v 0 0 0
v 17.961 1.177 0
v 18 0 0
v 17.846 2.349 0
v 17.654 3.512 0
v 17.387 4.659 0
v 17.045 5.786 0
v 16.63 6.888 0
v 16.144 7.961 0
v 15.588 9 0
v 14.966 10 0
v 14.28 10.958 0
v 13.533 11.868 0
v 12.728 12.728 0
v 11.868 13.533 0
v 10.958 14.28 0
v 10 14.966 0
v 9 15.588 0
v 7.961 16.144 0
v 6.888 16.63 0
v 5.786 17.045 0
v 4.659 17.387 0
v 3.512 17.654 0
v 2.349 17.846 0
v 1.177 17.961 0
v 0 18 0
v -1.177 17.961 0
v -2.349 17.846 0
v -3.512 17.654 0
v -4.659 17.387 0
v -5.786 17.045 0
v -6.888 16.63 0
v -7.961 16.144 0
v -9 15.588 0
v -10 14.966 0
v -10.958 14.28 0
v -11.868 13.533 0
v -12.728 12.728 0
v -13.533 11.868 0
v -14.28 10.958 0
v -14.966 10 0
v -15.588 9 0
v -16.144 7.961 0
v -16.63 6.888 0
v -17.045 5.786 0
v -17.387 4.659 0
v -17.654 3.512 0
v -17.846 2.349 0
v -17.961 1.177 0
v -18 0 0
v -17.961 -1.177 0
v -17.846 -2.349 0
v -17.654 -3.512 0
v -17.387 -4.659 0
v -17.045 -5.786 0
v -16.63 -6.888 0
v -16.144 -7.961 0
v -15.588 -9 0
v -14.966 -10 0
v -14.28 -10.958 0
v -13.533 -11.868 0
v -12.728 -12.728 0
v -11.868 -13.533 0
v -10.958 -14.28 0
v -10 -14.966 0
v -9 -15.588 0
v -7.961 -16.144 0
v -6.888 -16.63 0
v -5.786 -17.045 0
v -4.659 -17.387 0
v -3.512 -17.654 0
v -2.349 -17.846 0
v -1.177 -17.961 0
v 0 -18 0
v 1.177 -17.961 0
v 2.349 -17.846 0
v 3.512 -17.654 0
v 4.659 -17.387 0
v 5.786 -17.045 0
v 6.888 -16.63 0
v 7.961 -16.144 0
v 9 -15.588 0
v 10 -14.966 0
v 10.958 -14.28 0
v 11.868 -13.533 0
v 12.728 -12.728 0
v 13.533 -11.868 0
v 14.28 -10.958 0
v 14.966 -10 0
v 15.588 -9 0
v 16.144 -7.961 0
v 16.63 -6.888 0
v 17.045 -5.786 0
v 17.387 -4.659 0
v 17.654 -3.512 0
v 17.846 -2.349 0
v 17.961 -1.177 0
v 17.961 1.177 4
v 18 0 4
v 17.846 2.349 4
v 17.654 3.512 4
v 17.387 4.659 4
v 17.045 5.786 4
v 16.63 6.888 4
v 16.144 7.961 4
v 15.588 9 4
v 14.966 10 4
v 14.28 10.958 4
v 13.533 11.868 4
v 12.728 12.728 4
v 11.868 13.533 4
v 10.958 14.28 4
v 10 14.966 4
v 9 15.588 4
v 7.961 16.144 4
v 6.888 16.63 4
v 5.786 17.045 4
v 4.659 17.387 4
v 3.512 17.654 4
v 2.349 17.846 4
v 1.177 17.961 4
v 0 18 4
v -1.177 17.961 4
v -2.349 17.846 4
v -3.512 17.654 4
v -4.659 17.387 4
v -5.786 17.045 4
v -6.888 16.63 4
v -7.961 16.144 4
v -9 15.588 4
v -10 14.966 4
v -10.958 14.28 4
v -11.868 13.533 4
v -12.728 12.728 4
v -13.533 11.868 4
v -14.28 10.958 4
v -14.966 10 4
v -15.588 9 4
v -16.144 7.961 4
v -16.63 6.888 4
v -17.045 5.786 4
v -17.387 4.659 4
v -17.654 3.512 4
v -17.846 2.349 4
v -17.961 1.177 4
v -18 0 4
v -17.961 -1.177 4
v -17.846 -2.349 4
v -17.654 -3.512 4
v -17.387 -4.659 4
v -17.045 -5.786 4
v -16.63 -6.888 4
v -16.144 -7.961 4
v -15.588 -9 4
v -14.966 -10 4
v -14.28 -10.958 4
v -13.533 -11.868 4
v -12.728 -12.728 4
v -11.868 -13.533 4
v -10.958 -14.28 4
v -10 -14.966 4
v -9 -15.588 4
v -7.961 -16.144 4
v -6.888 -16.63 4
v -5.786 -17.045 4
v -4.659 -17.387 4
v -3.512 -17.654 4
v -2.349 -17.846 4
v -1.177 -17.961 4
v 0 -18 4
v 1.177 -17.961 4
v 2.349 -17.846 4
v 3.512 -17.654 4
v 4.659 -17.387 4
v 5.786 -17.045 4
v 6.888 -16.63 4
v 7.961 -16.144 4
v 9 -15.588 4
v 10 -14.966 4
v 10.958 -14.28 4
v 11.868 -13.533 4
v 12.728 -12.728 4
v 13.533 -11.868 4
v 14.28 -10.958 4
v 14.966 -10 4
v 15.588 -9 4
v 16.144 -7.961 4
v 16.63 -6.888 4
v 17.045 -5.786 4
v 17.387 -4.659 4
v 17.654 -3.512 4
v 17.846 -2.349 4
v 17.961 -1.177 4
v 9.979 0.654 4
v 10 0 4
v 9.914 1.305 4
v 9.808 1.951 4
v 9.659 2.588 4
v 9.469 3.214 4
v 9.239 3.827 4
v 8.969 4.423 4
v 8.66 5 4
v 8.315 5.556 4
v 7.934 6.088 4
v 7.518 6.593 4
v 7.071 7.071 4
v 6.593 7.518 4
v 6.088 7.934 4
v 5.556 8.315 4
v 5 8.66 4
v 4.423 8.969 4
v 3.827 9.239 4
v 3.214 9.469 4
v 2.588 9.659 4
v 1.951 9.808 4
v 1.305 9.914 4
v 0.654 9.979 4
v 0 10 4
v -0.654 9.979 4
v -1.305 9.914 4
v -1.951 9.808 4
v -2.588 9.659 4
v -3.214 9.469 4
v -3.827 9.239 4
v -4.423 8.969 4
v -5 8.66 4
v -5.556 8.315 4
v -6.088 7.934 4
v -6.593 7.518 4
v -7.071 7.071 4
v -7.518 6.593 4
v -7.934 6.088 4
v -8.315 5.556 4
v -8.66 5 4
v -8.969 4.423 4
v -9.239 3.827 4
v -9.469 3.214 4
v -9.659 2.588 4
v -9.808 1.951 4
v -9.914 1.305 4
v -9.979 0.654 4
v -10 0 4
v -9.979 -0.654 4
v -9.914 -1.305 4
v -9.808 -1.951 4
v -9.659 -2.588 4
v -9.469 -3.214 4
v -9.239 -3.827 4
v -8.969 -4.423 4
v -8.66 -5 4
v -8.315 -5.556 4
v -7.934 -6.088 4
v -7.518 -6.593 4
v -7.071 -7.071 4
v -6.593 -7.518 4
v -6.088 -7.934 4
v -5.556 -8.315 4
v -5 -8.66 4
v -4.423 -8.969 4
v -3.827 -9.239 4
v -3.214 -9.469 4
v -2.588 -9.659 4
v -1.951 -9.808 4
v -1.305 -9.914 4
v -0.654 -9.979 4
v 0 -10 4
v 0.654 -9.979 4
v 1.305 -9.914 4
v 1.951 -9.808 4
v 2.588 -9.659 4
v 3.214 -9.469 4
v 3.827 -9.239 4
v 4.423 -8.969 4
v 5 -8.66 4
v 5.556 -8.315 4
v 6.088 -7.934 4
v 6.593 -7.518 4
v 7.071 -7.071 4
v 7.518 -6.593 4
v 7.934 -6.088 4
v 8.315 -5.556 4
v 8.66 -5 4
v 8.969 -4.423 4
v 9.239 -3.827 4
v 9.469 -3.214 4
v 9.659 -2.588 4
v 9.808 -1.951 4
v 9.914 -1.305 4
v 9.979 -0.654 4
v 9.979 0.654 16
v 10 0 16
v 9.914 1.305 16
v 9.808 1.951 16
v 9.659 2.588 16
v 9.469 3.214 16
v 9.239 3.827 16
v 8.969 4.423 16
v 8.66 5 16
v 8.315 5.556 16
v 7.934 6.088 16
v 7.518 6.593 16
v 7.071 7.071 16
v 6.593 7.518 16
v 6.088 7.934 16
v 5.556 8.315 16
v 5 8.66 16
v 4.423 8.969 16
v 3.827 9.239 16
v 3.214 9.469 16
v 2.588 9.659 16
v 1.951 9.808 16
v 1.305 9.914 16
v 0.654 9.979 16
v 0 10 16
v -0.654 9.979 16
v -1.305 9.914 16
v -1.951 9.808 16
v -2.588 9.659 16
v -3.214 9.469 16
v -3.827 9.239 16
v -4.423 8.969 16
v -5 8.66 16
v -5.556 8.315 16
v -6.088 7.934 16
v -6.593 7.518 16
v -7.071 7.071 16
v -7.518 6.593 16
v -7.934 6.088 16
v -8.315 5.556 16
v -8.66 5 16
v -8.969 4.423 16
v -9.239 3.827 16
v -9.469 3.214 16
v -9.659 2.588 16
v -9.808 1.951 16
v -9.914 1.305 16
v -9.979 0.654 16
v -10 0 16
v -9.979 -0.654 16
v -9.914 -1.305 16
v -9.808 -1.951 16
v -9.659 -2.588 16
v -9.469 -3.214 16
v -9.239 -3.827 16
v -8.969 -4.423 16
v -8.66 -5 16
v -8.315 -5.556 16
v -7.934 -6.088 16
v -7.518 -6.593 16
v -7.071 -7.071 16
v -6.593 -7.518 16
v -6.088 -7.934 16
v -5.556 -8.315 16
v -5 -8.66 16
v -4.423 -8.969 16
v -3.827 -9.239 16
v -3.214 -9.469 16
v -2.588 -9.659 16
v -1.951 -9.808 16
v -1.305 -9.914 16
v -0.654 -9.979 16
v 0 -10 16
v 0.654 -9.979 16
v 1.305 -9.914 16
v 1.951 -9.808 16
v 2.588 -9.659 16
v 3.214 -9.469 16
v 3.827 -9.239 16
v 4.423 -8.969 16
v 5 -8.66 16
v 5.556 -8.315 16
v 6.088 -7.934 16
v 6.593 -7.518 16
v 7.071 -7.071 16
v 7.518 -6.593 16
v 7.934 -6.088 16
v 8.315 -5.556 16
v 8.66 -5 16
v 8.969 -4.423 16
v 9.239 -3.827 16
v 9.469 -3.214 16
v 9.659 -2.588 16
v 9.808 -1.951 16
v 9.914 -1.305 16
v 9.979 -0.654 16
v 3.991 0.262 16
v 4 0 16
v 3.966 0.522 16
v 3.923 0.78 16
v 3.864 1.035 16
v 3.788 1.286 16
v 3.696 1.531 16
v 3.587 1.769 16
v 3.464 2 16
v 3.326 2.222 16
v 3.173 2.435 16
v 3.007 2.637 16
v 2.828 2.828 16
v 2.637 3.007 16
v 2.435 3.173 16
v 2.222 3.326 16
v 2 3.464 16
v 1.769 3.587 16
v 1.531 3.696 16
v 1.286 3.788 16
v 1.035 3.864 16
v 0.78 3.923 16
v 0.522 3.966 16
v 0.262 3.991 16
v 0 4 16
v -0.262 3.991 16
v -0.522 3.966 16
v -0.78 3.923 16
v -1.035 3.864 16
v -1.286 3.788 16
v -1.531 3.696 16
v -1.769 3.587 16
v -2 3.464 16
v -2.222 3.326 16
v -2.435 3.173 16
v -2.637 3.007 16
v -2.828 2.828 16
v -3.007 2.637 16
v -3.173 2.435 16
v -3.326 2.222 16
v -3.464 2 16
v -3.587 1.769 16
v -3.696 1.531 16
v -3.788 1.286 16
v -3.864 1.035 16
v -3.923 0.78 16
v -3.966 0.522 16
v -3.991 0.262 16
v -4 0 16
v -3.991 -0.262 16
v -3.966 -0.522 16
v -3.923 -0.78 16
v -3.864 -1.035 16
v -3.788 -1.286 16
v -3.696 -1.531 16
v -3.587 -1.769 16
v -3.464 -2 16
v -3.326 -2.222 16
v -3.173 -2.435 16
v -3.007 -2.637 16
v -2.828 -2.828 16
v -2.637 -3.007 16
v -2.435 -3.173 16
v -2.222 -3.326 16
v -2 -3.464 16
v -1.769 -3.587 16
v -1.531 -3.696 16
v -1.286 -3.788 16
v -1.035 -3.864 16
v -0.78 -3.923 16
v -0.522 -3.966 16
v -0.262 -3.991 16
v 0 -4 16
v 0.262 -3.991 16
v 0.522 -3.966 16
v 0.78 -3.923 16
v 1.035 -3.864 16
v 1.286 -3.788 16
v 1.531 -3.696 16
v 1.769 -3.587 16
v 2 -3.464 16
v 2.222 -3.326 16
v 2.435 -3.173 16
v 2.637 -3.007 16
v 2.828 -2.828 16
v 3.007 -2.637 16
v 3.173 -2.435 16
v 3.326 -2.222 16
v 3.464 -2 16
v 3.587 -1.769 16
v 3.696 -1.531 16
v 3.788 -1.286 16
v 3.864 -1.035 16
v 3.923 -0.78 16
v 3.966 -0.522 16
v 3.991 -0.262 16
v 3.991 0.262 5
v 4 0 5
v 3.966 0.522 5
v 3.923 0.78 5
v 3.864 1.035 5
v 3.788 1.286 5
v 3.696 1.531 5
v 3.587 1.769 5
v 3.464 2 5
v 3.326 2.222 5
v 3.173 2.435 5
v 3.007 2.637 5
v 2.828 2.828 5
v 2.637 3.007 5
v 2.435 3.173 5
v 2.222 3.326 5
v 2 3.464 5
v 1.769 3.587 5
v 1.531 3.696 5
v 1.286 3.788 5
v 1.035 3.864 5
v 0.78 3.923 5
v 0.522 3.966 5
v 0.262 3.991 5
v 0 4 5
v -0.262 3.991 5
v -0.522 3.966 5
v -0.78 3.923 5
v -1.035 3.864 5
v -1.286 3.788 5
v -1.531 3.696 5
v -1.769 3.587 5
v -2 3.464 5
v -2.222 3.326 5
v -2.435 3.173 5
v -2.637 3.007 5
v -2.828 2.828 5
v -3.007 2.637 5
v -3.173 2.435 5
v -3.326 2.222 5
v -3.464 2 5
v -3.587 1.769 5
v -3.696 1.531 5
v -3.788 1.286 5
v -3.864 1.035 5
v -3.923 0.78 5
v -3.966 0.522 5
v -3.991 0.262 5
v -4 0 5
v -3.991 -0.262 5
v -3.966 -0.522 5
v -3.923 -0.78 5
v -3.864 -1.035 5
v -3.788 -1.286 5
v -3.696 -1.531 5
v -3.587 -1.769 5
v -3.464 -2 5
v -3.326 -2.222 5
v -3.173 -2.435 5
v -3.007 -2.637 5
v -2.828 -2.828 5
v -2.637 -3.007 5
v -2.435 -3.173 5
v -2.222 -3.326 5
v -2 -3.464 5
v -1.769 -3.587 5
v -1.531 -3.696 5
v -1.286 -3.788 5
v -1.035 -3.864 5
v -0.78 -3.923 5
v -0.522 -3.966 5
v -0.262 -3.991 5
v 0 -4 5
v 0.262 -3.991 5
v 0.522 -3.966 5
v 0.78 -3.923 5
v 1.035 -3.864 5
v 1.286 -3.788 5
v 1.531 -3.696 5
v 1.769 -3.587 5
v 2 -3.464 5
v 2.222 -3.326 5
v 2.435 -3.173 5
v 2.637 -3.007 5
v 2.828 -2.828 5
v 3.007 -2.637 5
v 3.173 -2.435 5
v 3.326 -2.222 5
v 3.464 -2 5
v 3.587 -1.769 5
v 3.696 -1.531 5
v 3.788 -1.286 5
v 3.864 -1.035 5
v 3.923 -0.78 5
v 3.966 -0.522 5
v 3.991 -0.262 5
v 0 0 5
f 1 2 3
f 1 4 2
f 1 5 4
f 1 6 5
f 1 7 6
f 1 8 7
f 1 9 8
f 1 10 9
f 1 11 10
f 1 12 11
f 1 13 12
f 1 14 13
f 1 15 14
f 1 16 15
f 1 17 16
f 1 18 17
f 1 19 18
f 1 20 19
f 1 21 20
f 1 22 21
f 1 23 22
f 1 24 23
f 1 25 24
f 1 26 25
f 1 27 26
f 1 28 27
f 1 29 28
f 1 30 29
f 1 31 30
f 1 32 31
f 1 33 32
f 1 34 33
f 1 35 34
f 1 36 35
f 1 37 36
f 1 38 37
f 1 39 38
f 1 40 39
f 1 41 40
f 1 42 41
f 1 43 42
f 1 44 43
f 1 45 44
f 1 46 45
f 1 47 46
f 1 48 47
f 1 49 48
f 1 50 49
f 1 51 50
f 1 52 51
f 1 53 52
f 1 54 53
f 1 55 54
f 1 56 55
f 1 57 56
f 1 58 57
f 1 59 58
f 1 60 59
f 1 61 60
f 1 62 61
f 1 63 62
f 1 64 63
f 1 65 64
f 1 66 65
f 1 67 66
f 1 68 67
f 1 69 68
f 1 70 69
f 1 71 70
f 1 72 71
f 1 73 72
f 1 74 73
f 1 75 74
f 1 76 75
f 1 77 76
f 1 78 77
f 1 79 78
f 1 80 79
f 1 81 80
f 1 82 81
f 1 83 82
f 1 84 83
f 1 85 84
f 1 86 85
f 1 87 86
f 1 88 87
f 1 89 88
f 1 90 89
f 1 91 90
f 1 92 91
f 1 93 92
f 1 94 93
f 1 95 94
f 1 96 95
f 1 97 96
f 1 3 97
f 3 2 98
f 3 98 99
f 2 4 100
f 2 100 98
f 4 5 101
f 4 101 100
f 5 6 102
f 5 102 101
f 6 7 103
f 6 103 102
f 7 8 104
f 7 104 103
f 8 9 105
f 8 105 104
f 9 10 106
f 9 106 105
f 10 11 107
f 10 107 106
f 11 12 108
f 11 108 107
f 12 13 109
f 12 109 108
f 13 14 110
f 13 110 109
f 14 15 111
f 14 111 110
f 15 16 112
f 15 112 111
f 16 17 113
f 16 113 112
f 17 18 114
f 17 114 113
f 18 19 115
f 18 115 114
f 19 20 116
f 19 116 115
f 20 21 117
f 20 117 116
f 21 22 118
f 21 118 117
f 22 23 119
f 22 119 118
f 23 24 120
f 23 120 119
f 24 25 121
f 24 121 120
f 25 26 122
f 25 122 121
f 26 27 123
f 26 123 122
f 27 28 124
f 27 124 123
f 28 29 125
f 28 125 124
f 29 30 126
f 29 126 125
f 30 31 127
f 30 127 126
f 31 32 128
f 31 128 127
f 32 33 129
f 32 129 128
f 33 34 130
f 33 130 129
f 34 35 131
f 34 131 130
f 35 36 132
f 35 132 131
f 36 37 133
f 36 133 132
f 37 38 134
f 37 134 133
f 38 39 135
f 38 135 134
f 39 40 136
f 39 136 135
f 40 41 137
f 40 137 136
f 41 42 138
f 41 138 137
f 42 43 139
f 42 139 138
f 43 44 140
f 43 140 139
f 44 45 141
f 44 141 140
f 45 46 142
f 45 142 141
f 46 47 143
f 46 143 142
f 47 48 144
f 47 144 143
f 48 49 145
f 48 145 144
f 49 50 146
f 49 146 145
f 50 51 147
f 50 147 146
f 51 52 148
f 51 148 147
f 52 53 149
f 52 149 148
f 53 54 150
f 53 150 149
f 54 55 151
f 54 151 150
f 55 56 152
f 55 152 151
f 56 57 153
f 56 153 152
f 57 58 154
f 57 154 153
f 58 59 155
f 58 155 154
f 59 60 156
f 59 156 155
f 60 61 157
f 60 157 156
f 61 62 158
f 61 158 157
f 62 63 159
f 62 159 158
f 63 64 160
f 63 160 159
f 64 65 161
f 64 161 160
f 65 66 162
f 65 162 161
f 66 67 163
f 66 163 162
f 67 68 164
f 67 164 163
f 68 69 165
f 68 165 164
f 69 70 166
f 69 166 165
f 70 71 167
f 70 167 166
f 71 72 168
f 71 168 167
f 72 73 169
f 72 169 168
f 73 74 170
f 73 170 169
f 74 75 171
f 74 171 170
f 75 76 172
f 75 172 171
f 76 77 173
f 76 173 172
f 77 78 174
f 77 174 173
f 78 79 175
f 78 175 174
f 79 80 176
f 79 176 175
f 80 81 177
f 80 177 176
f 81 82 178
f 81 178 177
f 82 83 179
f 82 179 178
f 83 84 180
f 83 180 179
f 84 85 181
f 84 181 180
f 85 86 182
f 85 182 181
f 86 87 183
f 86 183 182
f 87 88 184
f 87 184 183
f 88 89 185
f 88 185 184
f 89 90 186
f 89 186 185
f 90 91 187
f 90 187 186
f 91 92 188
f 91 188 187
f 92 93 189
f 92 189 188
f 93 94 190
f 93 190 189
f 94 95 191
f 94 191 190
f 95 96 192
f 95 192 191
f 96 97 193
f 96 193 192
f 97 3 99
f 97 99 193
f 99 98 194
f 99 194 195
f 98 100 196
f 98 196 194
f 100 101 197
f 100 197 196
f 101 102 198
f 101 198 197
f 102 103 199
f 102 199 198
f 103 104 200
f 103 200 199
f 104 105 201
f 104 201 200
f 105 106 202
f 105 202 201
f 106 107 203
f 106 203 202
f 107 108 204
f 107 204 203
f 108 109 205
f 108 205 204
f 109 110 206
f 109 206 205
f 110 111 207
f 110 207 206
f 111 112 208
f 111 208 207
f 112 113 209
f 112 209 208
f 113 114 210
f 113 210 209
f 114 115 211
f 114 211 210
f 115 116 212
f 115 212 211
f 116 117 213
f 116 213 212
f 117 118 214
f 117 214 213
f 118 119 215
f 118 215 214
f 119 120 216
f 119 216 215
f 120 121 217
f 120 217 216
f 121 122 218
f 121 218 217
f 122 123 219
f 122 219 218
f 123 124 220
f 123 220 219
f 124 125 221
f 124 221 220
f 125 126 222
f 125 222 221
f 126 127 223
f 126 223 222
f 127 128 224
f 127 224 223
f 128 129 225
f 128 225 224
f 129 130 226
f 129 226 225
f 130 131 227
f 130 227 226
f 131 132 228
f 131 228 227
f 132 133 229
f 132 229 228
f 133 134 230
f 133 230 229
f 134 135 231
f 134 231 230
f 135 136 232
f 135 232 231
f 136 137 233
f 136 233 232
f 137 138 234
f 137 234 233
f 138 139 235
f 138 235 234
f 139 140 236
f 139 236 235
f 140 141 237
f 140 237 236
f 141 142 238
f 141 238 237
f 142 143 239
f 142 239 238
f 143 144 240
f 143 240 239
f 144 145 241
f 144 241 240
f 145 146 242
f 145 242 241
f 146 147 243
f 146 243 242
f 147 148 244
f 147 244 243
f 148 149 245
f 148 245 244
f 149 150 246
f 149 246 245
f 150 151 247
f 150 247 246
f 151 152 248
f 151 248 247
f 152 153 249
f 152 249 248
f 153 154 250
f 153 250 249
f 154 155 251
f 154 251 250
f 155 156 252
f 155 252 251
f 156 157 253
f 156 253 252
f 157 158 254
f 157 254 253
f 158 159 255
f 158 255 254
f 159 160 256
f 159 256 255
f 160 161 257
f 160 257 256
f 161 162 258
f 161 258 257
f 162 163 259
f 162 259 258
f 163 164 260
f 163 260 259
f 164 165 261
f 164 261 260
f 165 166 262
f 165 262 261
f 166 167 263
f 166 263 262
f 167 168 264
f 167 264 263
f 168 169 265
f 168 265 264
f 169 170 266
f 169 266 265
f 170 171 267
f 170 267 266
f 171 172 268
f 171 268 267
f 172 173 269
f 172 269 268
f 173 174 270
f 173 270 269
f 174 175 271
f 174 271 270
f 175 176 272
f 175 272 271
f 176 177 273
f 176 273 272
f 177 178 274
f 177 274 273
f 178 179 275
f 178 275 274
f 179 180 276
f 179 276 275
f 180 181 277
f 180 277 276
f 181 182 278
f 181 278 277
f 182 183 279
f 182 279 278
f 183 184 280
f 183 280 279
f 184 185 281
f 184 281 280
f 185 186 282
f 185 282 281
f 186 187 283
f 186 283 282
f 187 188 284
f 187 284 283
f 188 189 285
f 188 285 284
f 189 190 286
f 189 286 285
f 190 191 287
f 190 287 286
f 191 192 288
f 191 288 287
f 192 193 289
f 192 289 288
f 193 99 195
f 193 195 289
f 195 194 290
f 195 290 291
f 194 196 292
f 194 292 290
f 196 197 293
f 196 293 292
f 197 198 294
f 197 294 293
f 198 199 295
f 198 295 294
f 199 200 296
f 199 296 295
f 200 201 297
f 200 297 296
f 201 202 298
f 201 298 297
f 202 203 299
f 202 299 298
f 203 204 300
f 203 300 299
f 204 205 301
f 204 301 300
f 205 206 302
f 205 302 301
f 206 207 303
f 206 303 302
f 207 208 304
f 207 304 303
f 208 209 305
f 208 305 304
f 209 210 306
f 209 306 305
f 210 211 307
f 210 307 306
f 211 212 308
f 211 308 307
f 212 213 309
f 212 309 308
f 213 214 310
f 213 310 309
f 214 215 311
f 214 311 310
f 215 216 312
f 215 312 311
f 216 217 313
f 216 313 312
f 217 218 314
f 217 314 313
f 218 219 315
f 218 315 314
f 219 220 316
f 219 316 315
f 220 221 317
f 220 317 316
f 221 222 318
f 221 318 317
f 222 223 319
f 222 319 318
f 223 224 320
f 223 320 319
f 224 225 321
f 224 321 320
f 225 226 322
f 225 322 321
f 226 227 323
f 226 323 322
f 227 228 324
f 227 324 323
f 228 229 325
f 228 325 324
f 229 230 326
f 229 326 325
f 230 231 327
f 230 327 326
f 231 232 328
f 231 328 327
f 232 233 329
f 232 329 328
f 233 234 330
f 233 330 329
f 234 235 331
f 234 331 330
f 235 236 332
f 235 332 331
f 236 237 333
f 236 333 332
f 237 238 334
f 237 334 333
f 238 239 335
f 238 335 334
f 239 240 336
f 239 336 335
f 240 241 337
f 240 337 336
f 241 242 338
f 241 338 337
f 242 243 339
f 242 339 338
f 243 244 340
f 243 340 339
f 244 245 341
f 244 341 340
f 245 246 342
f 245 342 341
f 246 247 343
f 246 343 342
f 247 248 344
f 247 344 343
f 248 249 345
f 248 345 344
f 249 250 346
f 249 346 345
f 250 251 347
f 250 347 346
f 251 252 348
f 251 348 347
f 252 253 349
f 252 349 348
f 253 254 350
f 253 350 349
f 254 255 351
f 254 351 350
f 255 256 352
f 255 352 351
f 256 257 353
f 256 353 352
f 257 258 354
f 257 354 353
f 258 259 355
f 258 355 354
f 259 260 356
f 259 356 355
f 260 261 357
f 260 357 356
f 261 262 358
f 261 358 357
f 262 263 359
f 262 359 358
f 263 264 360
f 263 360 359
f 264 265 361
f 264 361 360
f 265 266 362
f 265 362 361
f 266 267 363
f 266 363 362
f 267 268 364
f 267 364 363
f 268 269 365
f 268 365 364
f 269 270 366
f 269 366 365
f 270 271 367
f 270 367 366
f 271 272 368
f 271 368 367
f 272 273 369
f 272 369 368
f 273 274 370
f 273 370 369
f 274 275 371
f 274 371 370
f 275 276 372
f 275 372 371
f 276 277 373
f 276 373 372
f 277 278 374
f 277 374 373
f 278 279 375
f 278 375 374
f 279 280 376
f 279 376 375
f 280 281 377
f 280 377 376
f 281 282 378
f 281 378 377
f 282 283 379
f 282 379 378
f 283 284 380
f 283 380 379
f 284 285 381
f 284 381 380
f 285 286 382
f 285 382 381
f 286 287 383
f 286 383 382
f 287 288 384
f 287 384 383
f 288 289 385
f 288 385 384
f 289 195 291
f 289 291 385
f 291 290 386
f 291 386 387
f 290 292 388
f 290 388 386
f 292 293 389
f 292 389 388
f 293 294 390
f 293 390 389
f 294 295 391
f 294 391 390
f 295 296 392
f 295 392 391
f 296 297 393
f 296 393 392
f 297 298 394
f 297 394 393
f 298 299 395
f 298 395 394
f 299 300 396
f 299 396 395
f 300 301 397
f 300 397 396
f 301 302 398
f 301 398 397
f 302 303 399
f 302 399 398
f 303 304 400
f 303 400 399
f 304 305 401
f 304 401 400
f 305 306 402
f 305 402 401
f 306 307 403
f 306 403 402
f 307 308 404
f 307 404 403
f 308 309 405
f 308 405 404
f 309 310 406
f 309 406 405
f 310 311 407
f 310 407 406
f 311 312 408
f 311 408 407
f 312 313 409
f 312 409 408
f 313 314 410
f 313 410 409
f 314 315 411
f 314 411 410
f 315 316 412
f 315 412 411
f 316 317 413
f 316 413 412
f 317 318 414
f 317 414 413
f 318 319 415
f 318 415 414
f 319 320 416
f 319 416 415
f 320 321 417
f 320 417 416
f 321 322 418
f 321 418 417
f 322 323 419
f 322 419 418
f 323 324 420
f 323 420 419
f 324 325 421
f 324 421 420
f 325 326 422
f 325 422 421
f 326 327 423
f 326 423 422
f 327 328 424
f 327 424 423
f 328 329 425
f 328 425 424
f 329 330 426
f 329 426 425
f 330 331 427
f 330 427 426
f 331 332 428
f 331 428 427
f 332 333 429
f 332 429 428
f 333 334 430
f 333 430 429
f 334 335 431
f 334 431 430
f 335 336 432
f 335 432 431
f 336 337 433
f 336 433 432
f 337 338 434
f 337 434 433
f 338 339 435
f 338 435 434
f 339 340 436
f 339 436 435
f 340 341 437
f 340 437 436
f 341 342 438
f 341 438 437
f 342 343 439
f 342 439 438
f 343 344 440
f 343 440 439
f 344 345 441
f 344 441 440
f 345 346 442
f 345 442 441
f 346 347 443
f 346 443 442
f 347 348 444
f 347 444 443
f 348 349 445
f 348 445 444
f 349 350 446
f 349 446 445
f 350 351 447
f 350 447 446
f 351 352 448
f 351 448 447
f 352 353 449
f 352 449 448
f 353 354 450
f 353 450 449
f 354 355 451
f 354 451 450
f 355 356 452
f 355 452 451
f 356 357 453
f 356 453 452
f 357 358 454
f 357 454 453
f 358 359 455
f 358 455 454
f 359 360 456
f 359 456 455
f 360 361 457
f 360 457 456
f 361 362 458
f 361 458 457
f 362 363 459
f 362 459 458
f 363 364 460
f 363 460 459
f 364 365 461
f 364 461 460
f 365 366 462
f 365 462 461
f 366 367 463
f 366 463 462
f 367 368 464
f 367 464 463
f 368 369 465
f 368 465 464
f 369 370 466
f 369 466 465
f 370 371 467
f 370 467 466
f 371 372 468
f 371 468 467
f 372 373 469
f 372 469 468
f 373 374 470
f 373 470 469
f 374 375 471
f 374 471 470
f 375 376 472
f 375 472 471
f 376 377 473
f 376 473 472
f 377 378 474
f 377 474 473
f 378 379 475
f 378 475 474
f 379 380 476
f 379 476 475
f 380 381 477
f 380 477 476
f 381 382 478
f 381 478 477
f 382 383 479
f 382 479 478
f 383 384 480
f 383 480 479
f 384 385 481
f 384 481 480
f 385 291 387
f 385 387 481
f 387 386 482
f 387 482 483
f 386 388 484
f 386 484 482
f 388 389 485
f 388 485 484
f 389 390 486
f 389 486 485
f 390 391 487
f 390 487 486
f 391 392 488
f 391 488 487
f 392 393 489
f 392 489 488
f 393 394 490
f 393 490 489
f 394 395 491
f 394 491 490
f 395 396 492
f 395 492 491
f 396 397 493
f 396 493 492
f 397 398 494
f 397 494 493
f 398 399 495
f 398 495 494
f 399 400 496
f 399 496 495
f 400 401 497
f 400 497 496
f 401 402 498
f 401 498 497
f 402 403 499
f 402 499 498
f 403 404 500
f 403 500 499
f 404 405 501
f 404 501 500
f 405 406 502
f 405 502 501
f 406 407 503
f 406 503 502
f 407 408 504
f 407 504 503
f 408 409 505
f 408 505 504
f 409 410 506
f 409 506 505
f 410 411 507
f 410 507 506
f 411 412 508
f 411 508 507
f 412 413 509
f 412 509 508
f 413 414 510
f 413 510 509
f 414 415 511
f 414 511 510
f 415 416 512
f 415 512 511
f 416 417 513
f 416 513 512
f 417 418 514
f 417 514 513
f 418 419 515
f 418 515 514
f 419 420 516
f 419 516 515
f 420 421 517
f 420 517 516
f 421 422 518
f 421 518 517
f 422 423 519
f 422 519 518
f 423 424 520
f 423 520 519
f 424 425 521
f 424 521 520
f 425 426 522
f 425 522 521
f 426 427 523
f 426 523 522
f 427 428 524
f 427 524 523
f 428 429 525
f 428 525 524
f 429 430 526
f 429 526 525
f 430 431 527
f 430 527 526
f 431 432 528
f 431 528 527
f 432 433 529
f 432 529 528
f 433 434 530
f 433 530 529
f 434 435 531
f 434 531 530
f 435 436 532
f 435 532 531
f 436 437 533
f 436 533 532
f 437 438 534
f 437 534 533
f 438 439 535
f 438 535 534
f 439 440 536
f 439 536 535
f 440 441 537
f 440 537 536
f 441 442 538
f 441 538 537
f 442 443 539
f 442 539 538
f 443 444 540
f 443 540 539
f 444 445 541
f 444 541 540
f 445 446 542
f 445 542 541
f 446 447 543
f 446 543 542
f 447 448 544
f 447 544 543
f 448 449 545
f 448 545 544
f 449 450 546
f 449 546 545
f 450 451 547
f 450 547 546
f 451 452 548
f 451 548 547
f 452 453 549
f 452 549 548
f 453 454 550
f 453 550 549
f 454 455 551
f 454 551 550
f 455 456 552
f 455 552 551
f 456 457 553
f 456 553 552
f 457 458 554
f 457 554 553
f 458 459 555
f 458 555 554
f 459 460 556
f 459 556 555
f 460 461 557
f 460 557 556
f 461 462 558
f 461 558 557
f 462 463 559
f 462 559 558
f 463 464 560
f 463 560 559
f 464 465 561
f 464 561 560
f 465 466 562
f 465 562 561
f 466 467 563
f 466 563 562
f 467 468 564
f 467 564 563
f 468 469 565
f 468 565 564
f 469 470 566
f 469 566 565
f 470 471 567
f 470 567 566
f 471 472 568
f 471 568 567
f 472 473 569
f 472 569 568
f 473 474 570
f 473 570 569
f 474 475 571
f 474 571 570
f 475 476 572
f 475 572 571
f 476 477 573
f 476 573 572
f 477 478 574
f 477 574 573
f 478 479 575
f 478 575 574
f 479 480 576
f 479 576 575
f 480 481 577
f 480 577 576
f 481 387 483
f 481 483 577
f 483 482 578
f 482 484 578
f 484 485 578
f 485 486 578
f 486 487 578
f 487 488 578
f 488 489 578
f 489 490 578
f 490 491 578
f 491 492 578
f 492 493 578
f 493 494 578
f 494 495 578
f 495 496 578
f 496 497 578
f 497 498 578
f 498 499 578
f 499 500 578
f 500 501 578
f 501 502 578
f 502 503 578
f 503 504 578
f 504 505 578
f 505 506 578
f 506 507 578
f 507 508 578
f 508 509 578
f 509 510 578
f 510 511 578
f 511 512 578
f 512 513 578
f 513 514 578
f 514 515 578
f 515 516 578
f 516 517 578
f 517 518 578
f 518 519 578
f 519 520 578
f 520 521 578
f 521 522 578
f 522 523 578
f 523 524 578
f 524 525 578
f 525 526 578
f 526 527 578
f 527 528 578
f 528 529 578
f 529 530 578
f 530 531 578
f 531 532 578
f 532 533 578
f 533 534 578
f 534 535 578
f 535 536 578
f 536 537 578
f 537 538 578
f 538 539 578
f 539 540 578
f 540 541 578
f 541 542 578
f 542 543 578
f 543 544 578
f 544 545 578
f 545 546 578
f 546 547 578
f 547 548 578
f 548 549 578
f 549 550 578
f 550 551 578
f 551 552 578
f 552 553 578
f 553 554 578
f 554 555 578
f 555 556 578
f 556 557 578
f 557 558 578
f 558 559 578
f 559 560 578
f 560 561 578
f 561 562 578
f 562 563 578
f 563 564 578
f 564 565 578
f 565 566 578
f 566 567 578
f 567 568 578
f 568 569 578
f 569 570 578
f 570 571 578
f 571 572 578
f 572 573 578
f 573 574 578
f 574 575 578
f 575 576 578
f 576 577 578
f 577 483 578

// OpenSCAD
// Original MechIntel educational model. CC0-1.0. Units: mm.
// Not a standardized or load-rated component.
$fn=96;
// Section points: [radius, height], mm. Edit to change the profile.
section=[[0, 0], [18, 0], [18, 4], [10, 4], [10, 16], [4, 16], [4, 5], [0, 5]];
rotate_extrude($fn=96) polygon(points=section);
